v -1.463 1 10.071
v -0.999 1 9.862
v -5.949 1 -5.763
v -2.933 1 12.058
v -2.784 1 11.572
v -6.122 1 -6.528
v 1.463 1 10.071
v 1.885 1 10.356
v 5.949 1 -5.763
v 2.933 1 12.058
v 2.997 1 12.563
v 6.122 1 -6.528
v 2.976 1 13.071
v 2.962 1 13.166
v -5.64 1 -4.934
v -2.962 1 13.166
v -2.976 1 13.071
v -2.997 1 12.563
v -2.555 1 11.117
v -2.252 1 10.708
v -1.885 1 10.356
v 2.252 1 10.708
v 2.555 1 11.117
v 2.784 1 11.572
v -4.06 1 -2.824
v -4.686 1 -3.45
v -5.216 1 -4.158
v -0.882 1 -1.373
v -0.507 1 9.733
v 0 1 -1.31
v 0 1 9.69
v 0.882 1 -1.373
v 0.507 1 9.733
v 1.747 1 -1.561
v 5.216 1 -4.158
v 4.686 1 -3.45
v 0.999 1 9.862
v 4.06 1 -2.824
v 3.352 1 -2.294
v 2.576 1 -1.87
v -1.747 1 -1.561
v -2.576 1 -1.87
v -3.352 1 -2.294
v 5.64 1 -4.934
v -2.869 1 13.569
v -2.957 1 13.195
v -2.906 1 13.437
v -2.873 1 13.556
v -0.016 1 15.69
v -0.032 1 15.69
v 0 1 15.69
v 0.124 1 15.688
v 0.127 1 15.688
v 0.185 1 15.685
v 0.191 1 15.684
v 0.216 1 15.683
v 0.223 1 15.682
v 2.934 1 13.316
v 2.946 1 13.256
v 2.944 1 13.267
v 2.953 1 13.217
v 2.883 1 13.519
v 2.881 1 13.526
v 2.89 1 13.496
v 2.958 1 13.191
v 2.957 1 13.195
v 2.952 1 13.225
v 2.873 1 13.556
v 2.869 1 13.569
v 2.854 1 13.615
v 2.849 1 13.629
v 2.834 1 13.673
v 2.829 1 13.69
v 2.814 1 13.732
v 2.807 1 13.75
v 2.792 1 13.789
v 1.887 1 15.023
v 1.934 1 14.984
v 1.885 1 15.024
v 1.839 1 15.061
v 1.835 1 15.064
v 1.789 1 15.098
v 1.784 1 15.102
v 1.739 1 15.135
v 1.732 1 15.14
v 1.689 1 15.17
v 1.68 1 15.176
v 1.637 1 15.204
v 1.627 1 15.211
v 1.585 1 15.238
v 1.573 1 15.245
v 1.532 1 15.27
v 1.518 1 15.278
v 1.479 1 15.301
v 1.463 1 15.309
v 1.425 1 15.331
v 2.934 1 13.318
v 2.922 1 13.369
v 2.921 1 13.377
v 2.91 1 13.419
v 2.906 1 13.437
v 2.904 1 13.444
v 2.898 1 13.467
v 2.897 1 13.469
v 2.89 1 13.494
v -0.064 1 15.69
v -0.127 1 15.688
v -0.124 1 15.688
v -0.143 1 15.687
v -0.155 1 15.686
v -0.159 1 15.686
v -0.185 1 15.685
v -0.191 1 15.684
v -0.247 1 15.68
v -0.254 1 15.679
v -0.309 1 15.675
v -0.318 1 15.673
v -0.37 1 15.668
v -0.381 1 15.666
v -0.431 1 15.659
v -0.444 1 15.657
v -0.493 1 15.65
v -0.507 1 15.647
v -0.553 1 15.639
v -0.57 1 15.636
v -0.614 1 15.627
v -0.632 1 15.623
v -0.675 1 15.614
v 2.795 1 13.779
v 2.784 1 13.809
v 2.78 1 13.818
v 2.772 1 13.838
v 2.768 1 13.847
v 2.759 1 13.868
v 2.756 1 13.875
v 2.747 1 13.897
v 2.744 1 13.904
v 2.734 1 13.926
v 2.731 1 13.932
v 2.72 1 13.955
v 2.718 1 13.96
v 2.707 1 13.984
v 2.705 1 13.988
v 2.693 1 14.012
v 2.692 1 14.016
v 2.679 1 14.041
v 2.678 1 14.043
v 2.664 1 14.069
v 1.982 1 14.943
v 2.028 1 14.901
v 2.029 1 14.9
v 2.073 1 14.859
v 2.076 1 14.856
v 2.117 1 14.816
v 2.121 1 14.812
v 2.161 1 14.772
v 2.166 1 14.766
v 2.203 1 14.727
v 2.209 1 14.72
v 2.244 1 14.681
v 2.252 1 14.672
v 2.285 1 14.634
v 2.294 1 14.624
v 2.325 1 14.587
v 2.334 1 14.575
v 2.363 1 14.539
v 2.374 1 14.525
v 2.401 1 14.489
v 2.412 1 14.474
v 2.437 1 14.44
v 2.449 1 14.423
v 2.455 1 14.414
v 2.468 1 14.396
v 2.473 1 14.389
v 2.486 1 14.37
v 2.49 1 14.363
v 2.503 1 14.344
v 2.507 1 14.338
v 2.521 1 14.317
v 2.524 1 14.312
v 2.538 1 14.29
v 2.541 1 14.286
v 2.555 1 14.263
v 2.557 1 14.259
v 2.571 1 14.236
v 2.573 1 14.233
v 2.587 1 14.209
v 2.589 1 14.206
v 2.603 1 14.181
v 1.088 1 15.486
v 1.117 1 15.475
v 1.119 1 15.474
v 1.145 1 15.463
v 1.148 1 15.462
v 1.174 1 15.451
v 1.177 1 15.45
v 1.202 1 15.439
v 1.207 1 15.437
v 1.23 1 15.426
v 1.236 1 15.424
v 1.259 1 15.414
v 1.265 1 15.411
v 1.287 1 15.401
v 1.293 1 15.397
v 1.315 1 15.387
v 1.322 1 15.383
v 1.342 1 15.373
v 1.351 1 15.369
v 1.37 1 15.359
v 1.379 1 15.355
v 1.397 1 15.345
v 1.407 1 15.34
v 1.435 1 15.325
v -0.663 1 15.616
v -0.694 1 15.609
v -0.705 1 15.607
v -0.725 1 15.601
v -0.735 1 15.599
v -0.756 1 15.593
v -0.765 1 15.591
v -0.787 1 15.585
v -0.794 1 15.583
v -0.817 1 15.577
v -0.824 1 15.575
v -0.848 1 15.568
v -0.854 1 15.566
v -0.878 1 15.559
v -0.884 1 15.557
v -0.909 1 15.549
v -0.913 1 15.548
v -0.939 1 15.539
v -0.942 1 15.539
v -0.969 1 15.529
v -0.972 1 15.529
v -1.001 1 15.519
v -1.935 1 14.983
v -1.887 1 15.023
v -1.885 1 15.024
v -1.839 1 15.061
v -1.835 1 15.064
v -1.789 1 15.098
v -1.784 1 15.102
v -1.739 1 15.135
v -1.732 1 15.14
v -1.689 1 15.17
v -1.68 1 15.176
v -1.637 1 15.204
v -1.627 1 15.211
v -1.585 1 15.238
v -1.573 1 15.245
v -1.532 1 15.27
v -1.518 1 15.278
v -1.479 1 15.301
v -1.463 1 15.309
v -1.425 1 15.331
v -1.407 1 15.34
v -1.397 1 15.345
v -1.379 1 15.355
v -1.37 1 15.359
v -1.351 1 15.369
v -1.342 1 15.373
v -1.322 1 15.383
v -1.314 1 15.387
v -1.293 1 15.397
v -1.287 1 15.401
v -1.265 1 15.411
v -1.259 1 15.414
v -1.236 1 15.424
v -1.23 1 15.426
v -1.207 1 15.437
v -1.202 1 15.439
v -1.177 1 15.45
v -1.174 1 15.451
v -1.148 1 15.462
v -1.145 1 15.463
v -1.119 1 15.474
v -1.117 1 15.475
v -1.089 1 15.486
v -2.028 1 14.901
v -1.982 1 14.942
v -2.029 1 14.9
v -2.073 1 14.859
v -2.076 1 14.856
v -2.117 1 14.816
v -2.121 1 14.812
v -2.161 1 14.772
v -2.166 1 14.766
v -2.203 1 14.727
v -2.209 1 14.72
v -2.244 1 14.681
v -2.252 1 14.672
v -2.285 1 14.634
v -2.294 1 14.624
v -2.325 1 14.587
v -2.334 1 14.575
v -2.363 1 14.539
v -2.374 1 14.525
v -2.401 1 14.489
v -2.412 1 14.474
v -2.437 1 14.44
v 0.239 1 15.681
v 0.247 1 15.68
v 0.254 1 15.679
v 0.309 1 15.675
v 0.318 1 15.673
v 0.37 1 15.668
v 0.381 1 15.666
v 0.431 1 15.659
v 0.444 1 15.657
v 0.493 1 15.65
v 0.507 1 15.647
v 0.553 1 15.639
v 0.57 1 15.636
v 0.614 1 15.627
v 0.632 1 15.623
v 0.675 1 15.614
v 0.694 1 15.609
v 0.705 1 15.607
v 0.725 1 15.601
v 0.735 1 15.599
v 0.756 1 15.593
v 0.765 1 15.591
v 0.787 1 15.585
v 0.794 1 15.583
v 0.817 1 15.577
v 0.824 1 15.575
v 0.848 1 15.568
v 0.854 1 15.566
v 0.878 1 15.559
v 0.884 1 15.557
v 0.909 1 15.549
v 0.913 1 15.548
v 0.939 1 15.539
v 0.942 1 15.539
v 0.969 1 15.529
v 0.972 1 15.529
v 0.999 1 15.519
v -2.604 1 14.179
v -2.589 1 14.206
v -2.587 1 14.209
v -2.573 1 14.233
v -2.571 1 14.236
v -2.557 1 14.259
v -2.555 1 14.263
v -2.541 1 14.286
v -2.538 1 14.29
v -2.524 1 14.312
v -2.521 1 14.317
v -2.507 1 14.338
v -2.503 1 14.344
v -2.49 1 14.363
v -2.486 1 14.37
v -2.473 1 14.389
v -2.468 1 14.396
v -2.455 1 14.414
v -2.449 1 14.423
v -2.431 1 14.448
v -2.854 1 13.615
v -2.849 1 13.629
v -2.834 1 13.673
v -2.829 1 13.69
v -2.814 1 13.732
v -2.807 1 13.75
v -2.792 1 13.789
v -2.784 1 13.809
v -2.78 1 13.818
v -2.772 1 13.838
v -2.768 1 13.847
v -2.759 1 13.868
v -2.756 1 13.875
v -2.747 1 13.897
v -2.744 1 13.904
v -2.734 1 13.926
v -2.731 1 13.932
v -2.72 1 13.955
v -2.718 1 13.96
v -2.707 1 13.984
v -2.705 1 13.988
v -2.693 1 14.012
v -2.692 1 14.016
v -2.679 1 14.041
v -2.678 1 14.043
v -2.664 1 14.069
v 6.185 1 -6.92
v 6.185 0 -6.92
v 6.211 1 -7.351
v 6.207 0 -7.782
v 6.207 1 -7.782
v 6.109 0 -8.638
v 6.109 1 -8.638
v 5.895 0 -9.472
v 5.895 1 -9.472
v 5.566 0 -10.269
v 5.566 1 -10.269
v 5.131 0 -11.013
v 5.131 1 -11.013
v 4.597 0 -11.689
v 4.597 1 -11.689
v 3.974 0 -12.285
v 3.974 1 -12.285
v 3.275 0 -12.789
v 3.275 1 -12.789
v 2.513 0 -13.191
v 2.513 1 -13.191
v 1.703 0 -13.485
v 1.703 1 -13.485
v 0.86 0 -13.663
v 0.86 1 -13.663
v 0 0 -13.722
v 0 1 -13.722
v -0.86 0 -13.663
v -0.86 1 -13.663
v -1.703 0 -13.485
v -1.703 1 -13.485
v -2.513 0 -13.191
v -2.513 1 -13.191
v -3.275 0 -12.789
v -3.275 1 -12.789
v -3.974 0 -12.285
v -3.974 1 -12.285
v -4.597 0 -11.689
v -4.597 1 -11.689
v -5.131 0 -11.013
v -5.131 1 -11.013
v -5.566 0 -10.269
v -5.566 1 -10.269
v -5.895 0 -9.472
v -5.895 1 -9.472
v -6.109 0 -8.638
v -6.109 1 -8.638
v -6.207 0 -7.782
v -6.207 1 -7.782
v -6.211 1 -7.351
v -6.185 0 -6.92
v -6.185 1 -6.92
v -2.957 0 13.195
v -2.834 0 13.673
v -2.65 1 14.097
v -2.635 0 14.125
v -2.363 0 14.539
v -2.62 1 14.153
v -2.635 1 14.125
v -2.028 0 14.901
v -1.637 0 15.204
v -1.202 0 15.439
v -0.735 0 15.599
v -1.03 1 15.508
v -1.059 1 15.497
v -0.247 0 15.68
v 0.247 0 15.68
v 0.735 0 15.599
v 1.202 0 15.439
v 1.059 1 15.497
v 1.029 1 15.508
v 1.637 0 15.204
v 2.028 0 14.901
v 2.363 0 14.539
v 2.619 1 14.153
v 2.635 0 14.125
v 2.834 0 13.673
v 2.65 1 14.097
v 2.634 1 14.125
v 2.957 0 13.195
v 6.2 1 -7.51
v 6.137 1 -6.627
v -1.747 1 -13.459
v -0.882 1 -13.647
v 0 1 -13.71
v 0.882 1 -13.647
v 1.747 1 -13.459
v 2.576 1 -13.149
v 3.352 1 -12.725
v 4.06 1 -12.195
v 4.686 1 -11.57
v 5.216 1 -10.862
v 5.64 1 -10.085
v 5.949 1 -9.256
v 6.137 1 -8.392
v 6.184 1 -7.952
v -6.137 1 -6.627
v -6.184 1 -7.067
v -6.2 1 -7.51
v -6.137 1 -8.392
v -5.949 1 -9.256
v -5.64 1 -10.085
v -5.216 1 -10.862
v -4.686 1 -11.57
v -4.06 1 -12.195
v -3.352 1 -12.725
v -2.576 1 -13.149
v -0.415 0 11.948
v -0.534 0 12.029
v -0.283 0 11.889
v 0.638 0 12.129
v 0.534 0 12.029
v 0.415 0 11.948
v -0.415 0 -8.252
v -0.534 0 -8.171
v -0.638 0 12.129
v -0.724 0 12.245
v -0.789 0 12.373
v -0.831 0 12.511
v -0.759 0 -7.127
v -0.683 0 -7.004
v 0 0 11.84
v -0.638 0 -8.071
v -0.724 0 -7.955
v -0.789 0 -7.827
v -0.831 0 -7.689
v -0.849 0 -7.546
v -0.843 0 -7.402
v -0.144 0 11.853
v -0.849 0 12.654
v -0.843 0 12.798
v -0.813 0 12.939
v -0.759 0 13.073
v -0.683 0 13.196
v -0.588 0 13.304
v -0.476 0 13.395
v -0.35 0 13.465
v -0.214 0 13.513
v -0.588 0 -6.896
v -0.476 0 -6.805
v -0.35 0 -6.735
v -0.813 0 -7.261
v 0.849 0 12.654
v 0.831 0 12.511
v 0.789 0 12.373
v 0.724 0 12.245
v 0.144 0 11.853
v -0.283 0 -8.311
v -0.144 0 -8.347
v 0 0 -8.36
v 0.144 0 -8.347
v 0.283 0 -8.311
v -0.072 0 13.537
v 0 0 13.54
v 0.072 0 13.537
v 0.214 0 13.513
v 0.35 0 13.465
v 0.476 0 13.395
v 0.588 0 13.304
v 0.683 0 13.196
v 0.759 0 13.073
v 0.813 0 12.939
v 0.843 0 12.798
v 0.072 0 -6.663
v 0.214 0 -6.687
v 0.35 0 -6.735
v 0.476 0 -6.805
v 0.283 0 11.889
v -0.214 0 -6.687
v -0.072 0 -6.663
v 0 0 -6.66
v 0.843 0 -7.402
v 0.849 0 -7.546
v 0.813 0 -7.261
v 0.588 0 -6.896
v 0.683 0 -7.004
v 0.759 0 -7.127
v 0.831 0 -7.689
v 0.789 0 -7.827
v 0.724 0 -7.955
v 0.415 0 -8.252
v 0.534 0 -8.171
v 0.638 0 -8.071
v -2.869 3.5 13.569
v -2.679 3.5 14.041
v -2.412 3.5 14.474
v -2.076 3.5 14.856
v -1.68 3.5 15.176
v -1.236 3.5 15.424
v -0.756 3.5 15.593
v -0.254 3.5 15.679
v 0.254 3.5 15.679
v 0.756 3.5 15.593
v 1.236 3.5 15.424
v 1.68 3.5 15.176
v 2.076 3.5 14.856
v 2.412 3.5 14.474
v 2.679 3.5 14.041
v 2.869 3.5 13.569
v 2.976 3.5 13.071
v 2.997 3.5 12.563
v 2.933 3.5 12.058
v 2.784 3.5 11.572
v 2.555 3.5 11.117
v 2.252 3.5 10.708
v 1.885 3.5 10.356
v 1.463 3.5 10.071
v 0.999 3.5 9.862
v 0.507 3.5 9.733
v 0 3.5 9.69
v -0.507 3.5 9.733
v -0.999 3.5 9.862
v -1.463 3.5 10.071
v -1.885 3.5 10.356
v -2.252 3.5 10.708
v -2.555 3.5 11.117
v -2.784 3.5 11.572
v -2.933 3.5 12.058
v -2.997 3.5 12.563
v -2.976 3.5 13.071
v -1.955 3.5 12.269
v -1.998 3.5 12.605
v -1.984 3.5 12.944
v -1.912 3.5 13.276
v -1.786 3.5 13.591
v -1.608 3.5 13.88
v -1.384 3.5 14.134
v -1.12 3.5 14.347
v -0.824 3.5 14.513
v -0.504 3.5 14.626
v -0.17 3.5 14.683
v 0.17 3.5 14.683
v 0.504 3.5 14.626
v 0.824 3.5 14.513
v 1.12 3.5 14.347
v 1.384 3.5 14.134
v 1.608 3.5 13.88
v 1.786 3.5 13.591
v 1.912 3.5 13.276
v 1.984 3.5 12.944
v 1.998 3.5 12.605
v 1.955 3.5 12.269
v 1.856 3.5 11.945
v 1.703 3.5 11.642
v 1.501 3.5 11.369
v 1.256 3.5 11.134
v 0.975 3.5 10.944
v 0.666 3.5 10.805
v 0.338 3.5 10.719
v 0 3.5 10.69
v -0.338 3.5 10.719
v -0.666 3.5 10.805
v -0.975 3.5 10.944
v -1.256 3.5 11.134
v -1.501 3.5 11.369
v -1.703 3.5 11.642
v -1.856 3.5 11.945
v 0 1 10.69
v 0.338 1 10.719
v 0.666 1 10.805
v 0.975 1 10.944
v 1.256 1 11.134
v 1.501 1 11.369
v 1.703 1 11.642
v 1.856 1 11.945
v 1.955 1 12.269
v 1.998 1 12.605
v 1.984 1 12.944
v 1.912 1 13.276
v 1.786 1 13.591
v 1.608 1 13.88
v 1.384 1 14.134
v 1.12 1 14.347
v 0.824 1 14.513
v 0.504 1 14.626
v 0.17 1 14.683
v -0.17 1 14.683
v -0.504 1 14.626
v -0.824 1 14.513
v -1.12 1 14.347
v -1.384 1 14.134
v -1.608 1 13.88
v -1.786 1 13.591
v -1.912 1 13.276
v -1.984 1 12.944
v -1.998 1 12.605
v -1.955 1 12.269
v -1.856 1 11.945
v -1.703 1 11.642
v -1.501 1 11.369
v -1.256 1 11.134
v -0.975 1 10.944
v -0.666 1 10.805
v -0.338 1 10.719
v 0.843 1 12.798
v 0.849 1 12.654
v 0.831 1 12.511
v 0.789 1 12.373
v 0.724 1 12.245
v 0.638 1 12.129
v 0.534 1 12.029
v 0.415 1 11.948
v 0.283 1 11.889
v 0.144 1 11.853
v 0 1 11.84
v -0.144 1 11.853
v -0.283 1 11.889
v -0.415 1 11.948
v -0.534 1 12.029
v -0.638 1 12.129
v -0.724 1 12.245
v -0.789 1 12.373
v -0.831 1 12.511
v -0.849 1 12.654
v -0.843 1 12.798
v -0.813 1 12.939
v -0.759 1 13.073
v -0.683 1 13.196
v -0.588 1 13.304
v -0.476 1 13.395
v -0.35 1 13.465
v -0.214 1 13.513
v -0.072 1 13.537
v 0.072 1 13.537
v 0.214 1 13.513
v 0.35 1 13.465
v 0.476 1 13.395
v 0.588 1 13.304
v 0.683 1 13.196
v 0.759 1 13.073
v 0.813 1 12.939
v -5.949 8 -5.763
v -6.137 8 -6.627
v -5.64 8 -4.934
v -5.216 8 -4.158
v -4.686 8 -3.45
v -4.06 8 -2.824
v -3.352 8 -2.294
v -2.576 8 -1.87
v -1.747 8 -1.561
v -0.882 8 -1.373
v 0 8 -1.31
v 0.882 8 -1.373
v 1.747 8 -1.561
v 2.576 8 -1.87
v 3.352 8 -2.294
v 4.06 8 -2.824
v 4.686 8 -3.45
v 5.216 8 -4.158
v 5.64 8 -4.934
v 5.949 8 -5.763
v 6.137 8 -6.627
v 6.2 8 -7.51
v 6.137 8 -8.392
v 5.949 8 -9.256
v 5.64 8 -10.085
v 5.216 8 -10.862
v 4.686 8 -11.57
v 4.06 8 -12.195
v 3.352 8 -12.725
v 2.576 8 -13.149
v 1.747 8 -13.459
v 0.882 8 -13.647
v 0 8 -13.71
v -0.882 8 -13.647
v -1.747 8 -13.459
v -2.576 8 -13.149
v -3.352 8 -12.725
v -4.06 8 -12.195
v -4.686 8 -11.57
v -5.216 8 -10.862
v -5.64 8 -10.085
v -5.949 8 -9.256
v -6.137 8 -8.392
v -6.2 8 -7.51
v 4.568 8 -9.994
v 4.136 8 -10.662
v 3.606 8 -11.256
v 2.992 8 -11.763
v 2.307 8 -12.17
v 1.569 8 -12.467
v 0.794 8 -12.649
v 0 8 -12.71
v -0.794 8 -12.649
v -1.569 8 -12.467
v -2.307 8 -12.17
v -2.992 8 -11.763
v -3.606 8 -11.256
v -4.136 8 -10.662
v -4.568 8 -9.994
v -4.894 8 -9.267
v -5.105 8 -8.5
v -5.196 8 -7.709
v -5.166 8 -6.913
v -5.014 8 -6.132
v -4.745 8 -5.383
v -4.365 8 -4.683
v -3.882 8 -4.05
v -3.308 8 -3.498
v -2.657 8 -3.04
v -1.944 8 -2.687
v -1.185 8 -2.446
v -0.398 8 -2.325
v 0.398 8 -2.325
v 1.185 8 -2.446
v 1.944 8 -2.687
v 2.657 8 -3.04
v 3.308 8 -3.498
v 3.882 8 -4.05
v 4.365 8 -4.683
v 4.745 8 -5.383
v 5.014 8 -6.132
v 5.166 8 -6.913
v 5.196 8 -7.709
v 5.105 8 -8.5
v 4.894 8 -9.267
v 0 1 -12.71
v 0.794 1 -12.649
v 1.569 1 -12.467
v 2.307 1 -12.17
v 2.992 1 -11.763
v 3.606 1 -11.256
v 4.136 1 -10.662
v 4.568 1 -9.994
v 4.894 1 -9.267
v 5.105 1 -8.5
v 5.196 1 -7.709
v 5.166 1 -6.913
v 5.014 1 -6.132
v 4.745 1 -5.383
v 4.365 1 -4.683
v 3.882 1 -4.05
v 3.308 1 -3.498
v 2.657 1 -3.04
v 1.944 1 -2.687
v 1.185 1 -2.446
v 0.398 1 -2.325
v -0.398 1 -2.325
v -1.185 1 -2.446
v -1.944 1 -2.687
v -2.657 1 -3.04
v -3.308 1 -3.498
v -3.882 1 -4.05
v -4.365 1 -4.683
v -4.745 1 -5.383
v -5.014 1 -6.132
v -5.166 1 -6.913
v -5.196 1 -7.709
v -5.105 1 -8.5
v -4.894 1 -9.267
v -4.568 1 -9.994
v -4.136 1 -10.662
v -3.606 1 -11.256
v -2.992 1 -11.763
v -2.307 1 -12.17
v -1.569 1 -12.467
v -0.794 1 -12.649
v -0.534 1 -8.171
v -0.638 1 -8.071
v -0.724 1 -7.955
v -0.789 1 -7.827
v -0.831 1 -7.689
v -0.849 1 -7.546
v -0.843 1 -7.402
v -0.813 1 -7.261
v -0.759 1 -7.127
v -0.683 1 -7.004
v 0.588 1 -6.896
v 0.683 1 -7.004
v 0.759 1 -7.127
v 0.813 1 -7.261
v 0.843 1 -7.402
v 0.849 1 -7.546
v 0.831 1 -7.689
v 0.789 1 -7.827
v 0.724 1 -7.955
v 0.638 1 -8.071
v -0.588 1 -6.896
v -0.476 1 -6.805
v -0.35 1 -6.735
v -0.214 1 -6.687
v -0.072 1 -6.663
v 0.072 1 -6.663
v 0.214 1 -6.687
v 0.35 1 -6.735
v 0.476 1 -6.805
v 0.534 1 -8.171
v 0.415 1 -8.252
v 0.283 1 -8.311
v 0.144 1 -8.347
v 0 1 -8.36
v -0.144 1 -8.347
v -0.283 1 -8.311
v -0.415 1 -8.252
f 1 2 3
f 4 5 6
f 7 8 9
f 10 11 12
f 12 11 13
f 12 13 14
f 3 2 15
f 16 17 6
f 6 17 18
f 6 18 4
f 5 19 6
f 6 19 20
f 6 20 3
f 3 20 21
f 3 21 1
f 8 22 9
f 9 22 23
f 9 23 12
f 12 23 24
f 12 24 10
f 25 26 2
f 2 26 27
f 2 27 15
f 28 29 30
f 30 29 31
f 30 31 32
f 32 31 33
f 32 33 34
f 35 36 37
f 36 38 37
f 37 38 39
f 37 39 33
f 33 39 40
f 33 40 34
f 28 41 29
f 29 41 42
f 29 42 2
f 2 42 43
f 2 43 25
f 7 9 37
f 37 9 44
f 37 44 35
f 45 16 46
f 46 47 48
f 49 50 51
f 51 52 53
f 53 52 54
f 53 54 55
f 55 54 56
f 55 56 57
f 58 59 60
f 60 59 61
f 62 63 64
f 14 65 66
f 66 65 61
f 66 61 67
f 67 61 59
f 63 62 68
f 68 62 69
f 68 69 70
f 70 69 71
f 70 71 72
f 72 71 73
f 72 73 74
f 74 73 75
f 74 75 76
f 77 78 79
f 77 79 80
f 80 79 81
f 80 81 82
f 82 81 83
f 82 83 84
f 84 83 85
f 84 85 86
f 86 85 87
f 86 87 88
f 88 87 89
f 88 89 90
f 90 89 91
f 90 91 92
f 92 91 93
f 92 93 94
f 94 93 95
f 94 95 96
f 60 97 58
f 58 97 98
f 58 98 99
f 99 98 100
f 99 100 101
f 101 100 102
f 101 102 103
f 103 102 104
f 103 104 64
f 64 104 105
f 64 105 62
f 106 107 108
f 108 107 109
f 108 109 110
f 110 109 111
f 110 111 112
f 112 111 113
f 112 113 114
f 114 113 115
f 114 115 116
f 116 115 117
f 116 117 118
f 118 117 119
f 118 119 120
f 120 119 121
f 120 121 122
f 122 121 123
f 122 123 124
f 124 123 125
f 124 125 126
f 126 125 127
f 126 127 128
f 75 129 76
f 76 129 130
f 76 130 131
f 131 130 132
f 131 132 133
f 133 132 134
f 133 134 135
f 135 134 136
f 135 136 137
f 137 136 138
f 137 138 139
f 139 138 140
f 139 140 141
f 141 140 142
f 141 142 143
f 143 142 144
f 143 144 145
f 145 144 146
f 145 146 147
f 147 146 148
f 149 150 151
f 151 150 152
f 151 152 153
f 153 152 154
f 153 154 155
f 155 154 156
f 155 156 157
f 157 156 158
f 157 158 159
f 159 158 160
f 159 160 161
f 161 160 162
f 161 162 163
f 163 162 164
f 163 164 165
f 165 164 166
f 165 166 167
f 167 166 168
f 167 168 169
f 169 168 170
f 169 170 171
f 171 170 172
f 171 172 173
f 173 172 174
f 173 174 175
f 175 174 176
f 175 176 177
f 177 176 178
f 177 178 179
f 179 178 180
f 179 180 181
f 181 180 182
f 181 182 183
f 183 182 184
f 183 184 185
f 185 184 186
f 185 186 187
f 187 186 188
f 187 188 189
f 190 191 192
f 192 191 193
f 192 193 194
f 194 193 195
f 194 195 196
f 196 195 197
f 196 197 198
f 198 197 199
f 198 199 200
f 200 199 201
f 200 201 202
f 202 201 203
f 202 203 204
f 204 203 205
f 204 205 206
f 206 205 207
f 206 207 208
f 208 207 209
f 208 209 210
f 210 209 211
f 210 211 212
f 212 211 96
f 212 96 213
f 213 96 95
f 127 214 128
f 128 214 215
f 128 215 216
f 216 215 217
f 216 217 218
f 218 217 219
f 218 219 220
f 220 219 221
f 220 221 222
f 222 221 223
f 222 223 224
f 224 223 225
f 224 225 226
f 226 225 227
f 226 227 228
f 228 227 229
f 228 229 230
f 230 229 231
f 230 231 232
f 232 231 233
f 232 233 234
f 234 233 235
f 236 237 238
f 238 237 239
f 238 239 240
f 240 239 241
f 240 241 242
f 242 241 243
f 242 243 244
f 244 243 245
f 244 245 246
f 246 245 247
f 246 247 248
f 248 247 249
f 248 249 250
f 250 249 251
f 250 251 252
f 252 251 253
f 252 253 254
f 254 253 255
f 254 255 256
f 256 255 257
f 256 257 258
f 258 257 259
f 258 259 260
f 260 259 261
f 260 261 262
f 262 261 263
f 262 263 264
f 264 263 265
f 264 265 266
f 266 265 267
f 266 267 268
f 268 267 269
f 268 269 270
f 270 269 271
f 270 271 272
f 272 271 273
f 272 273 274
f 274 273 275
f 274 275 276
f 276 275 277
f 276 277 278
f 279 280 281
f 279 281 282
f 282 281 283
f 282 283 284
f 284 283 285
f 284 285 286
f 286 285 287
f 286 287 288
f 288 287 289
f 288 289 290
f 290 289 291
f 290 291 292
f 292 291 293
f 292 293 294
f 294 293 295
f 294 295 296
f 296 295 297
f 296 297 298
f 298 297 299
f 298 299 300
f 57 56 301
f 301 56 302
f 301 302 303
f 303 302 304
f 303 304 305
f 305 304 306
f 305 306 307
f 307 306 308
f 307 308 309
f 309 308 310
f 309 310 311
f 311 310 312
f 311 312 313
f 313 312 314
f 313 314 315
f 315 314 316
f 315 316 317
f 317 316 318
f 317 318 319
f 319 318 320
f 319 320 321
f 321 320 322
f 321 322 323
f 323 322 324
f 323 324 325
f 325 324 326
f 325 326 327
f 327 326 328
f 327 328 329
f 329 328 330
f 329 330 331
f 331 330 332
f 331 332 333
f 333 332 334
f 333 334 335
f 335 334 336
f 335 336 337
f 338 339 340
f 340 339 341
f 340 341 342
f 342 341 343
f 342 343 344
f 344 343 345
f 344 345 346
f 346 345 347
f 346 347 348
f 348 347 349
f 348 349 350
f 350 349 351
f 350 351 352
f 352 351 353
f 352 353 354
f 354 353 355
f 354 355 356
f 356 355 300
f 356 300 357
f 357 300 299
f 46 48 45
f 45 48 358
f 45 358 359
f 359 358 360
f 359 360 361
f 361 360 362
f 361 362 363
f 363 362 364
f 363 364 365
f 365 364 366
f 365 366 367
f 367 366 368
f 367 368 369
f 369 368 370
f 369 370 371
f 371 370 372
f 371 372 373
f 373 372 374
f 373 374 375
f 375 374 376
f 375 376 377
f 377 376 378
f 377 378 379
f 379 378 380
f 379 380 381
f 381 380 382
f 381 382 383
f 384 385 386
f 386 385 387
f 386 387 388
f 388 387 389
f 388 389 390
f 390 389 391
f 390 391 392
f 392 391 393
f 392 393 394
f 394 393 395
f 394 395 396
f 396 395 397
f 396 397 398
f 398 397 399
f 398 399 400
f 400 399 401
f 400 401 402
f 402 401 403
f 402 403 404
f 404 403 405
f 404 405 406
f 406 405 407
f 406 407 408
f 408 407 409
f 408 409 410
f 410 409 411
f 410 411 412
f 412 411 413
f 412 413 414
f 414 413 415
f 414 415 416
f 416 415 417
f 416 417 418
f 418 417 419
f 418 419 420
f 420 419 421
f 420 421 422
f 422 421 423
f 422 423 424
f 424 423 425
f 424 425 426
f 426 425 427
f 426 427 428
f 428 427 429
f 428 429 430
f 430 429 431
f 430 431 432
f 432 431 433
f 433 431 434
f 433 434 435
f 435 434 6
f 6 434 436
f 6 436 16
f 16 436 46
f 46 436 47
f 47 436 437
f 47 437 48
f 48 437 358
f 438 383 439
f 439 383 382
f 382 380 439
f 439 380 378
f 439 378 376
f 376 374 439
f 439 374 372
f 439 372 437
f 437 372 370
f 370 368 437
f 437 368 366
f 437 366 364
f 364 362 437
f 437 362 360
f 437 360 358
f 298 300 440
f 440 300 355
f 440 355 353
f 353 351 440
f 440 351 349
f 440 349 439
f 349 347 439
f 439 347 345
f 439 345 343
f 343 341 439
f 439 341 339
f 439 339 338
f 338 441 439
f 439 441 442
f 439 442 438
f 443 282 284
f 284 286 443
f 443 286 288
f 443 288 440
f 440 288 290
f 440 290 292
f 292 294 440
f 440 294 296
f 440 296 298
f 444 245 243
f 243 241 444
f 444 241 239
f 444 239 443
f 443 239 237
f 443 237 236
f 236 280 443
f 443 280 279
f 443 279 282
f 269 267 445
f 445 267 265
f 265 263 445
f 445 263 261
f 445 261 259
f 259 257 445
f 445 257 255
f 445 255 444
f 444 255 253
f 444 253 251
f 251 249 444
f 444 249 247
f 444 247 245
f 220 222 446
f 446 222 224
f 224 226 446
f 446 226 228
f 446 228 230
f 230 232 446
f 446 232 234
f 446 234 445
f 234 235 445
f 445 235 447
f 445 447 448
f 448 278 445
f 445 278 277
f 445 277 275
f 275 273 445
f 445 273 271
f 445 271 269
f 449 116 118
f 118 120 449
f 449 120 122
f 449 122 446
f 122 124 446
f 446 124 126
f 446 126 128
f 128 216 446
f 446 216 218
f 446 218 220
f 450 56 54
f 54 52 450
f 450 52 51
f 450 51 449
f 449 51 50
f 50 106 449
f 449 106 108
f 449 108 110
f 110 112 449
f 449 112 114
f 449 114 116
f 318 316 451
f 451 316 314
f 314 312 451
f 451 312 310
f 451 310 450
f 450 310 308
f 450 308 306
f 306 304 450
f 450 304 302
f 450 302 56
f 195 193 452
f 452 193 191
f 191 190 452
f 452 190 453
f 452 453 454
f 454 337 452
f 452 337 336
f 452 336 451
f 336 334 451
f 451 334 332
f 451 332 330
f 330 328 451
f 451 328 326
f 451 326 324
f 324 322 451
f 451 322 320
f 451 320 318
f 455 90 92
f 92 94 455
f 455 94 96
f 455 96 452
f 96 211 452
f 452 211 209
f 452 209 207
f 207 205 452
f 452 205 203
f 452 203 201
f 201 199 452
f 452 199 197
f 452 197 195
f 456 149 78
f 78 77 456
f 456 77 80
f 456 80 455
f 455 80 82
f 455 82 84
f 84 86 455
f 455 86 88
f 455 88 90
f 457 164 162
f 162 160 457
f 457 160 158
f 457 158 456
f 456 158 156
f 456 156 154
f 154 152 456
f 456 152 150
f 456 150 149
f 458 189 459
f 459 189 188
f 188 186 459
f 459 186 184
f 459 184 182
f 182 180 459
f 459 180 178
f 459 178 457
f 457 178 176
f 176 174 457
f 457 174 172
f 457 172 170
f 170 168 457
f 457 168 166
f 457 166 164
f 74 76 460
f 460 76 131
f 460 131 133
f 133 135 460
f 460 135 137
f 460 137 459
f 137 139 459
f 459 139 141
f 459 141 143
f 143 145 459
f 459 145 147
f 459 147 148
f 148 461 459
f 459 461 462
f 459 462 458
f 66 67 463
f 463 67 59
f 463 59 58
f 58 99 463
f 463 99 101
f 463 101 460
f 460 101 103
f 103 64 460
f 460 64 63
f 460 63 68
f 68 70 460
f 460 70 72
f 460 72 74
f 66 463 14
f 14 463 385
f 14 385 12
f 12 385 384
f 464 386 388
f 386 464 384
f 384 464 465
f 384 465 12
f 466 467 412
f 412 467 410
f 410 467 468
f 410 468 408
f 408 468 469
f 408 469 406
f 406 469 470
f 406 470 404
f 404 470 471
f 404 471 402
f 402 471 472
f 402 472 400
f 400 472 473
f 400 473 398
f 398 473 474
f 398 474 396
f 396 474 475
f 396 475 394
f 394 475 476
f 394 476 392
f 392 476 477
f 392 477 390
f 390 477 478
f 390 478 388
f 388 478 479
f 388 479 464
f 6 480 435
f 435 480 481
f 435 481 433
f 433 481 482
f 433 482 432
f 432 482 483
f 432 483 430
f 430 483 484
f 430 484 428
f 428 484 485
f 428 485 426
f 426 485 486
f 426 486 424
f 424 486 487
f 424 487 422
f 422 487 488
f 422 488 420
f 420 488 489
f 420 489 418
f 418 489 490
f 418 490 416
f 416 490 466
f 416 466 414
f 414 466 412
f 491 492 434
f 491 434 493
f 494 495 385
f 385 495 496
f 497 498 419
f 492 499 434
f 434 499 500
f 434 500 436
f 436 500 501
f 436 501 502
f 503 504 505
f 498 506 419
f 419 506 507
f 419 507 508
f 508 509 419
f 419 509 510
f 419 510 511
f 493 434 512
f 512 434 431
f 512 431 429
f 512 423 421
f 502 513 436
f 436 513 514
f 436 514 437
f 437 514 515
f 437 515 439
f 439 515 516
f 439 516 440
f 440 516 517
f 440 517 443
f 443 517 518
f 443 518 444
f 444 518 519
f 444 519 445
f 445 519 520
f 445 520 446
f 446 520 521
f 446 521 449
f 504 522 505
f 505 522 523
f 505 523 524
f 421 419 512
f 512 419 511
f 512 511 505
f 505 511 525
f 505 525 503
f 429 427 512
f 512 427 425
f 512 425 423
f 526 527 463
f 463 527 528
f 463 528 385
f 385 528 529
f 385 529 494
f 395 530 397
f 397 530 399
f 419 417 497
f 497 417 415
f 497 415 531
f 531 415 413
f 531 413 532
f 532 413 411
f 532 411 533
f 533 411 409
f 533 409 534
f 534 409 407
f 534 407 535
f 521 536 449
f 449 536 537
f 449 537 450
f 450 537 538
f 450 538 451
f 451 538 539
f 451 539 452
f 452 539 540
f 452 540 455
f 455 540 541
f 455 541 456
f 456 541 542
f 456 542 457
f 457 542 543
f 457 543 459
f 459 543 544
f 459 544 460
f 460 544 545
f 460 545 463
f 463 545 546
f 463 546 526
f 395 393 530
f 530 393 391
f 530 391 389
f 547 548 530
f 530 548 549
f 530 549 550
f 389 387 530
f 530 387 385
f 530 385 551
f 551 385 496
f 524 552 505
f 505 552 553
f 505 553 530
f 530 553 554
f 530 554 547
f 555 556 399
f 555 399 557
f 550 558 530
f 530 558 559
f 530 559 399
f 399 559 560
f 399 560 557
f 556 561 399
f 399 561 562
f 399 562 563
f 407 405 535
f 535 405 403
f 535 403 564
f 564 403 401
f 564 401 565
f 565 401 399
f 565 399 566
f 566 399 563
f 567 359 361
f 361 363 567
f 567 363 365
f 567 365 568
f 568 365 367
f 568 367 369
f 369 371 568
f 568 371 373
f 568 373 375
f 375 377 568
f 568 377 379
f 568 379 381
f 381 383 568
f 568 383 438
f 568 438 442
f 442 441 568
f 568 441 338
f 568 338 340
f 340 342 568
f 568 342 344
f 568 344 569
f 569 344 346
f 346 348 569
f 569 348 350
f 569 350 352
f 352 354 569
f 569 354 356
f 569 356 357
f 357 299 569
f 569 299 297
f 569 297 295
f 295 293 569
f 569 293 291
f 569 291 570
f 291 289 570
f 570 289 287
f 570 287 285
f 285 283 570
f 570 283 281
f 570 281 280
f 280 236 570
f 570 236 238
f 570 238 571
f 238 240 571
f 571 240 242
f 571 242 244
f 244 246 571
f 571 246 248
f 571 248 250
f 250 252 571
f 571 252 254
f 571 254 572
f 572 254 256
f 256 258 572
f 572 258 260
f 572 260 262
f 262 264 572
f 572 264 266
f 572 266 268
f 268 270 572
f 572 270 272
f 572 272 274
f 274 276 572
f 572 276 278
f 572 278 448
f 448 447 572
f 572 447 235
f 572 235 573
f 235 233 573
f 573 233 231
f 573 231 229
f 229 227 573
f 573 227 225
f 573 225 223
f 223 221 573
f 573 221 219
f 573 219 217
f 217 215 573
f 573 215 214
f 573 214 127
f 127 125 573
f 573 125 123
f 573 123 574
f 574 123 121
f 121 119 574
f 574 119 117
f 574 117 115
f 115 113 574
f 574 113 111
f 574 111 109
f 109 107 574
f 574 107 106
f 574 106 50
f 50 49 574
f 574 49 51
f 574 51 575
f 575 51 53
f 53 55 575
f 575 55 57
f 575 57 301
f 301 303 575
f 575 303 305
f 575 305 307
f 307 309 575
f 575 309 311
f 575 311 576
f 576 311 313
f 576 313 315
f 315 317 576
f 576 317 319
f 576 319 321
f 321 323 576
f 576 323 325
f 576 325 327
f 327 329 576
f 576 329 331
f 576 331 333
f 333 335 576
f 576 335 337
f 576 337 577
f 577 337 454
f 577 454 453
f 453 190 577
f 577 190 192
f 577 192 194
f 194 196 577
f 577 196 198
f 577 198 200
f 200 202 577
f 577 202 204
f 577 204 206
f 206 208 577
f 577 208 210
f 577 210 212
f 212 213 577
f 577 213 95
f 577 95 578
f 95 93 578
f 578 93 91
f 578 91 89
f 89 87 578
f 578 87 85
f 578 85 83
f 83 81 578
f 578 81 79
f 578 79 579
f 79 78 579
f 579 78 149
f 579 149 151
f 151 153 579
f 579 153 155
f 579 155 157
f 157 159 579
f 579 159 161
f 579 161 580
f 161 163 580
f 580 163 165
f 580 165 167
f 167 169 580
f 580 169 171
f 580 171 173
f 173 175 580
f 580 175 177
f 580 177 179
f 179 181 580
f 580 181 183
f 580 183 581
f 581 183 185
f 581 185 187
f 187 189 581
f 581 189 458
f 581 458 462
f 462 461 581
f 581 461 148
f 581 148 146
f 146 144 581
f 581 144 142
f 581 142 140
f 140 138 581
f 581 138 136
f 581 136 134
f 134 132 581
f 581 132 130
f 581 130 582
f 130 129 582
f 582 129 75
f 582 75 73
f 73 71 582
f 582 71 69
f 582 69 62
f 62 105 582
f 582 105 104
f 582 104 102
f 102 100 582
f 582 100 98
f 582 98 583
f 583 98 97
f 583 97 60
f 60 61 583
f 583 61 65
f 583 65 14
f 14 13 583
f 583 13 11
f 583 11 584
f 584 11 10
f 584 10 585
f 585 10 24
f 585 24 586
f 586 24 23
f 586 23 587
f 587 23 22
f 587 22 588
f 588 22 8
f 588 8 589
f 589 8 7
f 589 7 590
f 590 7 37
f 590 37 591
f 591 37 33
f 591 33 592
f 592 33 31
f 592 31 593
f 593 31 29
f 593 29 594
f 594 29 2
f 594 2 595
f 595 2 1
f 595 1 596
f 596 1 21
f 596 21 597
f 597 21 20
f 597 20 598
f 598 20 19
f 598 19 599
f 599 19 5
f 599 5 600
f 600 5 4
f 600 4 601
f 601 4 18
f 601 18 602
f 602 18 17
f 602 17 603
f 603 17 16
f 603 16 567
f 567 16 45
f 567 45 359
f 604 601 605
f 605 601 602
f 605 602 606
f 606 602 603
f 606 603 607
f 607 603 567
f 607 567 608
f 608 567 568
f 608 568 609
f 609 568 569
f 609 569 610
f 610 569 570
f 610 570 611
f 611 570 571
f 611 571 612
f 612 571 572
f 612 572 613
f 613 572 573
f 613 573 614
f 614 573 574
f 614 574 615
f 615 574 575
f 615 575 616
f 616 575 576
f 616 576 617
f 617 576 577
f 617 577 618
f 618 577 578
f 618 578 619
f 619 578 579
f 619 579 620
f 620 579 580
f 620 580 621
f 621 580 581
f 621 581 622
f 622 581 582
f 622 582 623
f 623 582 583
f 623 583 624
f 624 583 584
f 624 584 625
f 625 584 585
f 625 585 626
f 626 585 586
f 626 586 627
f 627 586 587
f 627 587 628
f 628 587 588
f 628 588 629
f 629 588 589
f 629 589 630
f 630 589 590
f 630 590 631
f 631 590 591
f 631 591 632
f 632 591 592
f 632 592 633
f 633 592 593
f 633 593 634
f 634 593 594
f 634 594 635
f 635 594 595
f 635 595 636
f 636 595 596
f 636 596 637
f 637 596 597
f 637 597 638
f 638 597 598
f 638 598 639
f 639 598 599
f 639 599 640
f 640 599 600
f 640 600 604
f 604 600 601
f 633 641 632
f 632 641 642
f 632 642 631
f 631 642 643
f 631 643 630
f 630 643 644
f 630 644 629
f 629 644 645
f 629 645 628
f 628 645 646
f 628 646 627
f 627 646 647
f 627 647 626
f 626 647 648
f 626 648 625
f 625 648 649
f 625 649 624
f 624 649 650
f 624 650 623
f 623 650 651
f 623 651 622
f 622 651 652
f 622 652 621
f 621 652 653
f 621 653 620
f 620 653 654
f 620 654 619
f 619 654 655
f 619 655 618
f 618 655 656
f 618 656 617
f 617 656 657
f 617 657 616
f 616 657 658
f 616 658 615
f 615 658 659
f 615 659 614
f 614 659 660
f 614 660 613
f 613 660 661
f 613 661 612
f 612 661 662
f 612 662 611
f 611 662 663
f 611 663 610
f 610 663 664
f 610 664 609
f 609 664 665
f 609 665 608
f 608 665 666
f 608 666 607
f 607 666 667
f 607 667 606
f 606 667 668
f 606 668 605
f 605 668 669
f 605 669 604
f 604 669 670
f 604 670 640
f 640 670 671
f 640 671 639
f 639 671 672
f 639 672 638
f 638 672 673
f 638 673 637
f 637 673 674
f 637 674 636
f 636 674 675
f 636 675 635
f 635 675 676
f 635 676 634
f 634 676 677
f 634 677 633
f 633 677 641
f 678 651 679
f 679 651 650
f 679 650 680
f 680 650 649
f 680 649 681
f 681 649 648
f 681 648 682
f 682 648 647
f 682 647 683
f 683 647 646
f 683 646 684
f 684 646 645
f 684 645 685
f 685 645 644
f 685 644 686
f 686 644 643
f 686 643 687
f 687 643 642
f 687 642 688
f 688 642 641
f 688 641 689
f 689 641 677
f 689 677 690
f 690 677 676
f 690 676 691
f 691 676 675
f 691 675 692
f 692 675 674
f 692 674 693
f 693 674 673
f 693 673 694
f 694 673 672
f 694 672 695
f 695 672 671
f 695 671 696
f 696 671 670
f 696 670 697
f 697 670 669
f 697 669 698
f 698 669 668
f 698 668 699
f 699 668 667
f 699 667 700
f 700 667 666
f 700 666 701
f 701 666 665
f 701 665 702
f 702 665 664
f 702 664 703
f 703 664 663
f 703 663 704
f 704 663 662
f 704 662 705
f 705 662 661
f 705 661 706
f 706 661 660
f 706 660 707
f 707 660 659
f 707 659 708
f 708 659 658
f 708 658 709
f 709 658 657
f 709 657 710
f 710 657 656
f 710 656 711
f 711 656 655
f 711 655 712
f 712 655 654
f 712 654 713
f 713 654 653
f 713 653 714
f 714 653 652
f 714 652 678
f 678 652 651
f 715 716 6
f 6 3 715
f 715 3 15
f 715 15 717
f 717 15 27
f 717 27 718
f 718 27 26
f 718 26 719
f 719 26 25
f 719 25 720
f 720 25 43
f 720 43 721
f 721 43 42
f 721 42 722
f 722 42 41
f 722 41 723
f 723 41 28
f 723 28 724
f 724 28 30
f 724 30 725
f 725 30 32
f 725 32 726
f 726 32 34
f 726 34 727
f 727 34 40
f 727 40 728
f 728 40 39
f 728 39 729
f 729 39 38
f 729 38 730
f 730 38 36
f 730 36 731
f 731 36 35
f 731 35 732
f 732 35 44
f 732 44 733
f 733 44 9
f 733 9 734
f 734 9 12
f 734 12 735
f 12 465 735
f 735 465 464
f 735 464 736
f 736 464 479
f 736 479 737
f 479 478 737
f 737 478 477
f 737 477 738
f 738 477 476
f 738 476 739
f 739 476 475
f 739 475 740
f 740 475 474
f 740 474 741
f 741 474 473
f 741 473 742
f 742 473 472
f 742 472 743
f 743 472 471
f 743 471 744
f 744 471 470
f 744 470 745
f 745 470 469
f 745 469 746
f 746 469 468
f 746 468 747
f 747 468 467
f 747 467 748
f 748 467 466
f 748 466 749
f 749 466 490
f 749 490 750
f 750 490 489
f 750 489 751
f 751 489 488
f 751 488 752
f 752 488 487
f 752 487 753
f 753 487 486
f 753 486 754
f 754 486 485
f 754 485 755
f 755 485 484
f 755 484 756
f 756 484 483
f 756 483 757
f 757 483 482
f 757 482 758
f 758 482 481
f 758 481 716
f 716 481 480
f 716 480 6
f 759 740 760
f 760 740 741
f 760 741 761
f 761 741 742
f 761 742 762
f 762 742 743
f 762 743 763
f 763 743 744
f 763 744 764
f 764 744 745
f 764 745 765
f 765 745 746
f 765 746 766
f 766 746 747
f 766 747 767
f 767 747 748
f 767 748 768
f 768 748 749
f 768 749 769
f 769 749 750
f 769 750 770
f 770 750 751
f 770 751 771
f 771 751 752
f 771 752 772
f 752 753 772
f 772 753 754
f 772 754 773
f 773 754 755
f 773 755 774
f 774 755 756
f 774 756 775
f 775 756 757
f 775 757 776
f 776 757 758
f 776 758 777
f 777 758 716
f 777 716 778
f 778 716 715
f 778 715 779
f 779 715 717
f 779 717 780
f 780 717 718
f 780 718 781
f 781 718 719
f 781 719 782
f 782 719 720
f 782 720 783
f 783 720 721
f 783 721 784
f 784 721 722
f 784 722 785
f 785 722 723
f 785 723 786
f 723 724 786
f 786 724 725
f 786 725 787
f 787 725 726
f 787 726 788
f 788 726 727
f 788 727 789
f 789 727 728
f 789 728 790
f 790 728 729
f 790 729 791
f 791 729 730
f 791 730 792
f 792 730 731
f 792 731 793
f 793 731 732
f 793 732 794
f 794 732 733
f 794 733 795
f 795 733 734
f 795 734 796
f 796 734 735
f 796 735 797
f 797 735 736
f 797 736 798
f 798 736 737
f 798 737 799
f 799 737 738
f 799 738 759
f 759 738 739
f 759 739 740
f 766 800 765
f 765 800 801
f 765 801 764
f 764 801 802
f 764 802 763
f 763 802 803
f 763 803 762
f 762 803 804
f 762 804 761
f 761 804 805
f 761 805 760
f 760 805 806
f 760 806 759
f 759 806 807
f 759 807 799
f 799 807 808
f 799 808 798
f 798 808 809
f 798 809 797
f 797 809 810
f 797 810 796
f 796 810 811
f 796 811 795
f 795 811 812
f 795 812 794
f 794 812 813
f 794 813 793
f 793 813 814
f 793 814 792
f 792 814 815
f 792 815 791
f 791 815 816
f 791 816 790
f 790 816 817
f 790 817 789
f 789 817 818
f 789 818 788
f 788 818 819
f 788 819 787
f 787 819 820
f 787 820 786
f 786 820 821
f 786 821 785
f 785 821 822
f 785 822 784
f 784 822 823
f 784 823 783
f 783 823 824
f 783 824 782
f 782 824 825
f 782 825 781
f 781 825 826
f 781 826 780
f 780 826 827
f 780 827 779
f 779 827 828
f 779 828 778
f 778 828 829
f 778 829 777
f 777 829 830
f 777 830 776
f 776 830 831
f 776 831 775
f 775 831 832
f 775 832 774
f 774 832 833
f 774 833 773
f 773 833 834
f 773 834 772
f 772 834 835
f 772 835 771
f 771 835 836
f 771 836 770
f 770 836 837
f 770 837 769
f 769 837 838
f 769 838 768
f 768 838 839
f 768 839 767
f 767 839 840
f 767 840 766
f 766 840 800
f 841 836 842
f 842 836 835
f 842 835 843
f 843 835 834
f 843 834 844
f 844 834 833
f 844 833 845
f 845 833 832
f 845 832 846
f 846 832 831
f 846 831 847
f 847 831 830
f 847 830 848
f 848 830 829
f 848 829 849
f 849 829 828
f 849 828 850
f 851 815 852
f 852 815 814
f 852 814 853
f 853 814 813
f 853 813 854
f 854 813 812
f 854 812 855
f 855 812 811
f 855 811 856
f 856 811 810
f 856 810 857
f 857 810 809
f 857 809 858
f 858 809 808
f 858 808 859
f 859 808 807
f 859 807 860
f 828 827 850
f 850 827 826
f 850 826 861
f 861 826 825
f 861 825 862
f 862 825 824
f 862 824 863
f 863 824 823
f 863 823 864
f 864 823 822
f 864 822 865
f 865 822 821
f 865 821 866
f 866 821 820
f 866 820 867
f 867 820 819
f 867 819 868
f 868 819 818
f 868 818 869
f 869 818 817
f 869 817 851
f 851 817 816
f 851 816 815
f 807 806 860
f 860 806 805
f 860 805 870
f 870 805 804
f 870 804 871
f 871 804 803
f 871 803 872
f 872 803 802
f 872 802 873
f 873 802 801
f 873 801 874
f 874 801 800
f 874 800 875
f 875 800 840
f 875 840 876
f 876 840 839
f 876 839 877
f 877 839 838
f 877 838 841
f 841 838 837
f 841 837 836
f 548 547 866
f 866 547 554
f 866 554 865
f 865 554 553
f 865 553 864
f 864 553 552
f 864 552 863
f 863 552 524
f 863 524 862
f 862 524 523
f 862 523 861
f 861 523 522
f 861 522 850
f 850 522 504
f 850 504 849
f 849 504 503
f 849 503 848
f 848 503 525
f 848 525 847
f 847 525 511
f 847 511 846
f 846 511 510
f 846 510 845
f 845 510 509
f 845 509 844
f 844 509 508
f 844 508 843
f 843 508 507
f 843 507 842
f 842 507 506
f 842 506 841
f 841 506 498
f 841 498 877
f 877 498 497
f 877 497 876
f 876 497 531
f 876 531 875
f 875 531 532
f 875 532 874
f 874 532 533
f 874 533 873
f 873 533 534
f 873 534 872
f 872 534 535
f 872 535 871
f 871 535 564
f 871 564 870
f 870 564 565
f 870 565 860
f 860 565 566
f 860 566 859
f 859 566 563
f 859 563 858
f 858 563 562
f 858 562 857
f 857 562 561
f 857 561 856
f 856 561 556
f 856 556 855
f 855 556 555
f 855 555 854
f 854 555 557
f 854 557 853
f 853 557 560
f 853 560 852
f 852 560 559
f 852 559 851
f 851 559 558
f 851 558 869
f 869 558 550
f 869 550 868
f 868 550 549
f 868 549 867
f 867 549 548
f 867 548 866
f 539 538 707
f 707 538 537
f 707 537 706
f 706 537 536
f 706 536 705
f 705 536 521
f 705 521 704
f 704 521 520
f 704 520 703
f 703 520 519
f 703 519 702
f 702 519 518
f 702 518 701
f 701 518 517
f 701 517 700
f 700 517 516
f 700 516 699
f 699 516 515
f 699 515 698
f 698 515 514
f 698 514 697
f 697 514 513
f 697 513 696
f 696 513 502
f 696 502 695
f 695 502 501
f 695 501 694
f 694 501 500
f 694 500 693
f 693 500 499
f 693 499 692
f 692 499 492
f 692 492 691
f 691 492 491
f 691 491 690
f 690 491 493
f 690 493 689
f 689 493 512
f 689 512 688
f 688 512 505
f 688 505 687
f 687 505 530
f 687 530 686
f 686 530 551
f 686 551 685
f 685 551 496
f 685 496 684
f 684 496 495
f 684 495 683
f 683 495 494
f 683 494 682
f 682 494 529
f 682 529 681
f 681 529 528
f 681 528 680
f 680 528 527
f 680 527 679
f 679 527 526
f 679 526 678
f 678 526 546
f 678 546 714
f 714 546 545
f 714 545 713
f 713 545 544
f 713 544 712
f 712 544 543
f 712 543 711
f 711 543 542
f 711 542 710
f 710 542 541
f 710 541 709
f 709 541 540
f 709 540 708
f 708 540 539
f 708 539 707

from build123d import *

# Parameters (mm, degrees)
BOSS_EXTRUDE1_DEPTH = 1
BOSS_EXTRUDE5_START = 1
SKETCH1_5_R         = 3
SKETCH1_5_R_2       = 2
BOSS_EXTRUDE5_DEPTH = 2.5
BOSS_EXTRUDE4_START = 1
SKETCH1_4_R         = 6.2
SKETCH1_4_R_2       = 5.2
BOSS_EXTRUDE4_DEPTH = 7
SKETCH1_8_R         = 0.85
CUT_EXTRUDE7_DEPTH  = 10


with BuildPart() as part:
    # Sketch1 → Boss-Extrude1 (new body)
    with BuildSketch(Plane(origin=(0, 0, 0), x_dir=(1, 0, 0), z_dir=(0, 1, 0))):
        with BuildLine():
            Line((-6.18471188, 6.920224585), (-2.957423424, -13.194782769))
            ThreePointArc((-2.957423424, -13.194782769), (0, -15.690424696), (2.957423424, -13.194782769))
            Line((2.957423424, -13.194782769), (6.18471188, 6.920224585))
            ThreePointArc((6.18471188, 6.920224585), (0, 13.722464008), (-6.18471188, 6.920224585))
        make_face()
    extrude(amount=BOSS_EXTRUDE1_DEPTH)

    # Sketch1<5> → Boss-Extrude5 (add)
    with BuildSketch(Plane(origin=(0, 0, 0), x_dir=(1, 0, 0), z_dir=(0, 1, 0)).offset(BOSS_EXTRUDE5_START)):
        with Locations(Location((0, -12.690278367, 0), (0, 0, 90))):
            Circle(SKETCH1_5_R)
        with Locations(Location((0, -12.690278367, 0), (0, 0, 90))):
            Circle(SKETCH1_5_R_2, mode=Mode.SUBTRACT)
    extrude(amount=BOSS_EXTRUDE5_DEPTH)

    # Sketch1<4> → Boss-Extrude4 (add)
    with BuildSketch(Plane(origin=(0, 0, 0), x_dir=(1, 0, 0), z_dir=(0, 1, 0)).offset(BOSS_EXTRUDE4_START)):
        with Locations(Location((0, 7.509721633, 0), (0, 0, 90))):
            Circle(SKETCH1_4_R)
        with Locations(Location((0, 7.509721633, 0), (0, 0, 90))):
            Circle(SKETCH1_4_R_2, mode=Mode.SUBTRACT)
    extrude(amount=BOSS_EXTRUDE4_DEPTH)

    # Sketch1<8> → Cut-Extrude7 (cut)
    with BuildSketch(Plane(origin=(0, 0, 0), x_dir=(1, 0, 0), z_dir=(0, 1, 0))):
        with Locations(Location((0, 7.509721633, 0), (0, 0, 90))):
            Circle(SKETCH1_8_R)
        with Locations(Location((0, -12.690278367, 0), (0, 0, 90))):
            Circle(SKETCH1_8_R)
    extrude(amount=CUT_EXTRUDE7_DEPTH, mode=Mode.SUBTRACT)


solid = part.part
